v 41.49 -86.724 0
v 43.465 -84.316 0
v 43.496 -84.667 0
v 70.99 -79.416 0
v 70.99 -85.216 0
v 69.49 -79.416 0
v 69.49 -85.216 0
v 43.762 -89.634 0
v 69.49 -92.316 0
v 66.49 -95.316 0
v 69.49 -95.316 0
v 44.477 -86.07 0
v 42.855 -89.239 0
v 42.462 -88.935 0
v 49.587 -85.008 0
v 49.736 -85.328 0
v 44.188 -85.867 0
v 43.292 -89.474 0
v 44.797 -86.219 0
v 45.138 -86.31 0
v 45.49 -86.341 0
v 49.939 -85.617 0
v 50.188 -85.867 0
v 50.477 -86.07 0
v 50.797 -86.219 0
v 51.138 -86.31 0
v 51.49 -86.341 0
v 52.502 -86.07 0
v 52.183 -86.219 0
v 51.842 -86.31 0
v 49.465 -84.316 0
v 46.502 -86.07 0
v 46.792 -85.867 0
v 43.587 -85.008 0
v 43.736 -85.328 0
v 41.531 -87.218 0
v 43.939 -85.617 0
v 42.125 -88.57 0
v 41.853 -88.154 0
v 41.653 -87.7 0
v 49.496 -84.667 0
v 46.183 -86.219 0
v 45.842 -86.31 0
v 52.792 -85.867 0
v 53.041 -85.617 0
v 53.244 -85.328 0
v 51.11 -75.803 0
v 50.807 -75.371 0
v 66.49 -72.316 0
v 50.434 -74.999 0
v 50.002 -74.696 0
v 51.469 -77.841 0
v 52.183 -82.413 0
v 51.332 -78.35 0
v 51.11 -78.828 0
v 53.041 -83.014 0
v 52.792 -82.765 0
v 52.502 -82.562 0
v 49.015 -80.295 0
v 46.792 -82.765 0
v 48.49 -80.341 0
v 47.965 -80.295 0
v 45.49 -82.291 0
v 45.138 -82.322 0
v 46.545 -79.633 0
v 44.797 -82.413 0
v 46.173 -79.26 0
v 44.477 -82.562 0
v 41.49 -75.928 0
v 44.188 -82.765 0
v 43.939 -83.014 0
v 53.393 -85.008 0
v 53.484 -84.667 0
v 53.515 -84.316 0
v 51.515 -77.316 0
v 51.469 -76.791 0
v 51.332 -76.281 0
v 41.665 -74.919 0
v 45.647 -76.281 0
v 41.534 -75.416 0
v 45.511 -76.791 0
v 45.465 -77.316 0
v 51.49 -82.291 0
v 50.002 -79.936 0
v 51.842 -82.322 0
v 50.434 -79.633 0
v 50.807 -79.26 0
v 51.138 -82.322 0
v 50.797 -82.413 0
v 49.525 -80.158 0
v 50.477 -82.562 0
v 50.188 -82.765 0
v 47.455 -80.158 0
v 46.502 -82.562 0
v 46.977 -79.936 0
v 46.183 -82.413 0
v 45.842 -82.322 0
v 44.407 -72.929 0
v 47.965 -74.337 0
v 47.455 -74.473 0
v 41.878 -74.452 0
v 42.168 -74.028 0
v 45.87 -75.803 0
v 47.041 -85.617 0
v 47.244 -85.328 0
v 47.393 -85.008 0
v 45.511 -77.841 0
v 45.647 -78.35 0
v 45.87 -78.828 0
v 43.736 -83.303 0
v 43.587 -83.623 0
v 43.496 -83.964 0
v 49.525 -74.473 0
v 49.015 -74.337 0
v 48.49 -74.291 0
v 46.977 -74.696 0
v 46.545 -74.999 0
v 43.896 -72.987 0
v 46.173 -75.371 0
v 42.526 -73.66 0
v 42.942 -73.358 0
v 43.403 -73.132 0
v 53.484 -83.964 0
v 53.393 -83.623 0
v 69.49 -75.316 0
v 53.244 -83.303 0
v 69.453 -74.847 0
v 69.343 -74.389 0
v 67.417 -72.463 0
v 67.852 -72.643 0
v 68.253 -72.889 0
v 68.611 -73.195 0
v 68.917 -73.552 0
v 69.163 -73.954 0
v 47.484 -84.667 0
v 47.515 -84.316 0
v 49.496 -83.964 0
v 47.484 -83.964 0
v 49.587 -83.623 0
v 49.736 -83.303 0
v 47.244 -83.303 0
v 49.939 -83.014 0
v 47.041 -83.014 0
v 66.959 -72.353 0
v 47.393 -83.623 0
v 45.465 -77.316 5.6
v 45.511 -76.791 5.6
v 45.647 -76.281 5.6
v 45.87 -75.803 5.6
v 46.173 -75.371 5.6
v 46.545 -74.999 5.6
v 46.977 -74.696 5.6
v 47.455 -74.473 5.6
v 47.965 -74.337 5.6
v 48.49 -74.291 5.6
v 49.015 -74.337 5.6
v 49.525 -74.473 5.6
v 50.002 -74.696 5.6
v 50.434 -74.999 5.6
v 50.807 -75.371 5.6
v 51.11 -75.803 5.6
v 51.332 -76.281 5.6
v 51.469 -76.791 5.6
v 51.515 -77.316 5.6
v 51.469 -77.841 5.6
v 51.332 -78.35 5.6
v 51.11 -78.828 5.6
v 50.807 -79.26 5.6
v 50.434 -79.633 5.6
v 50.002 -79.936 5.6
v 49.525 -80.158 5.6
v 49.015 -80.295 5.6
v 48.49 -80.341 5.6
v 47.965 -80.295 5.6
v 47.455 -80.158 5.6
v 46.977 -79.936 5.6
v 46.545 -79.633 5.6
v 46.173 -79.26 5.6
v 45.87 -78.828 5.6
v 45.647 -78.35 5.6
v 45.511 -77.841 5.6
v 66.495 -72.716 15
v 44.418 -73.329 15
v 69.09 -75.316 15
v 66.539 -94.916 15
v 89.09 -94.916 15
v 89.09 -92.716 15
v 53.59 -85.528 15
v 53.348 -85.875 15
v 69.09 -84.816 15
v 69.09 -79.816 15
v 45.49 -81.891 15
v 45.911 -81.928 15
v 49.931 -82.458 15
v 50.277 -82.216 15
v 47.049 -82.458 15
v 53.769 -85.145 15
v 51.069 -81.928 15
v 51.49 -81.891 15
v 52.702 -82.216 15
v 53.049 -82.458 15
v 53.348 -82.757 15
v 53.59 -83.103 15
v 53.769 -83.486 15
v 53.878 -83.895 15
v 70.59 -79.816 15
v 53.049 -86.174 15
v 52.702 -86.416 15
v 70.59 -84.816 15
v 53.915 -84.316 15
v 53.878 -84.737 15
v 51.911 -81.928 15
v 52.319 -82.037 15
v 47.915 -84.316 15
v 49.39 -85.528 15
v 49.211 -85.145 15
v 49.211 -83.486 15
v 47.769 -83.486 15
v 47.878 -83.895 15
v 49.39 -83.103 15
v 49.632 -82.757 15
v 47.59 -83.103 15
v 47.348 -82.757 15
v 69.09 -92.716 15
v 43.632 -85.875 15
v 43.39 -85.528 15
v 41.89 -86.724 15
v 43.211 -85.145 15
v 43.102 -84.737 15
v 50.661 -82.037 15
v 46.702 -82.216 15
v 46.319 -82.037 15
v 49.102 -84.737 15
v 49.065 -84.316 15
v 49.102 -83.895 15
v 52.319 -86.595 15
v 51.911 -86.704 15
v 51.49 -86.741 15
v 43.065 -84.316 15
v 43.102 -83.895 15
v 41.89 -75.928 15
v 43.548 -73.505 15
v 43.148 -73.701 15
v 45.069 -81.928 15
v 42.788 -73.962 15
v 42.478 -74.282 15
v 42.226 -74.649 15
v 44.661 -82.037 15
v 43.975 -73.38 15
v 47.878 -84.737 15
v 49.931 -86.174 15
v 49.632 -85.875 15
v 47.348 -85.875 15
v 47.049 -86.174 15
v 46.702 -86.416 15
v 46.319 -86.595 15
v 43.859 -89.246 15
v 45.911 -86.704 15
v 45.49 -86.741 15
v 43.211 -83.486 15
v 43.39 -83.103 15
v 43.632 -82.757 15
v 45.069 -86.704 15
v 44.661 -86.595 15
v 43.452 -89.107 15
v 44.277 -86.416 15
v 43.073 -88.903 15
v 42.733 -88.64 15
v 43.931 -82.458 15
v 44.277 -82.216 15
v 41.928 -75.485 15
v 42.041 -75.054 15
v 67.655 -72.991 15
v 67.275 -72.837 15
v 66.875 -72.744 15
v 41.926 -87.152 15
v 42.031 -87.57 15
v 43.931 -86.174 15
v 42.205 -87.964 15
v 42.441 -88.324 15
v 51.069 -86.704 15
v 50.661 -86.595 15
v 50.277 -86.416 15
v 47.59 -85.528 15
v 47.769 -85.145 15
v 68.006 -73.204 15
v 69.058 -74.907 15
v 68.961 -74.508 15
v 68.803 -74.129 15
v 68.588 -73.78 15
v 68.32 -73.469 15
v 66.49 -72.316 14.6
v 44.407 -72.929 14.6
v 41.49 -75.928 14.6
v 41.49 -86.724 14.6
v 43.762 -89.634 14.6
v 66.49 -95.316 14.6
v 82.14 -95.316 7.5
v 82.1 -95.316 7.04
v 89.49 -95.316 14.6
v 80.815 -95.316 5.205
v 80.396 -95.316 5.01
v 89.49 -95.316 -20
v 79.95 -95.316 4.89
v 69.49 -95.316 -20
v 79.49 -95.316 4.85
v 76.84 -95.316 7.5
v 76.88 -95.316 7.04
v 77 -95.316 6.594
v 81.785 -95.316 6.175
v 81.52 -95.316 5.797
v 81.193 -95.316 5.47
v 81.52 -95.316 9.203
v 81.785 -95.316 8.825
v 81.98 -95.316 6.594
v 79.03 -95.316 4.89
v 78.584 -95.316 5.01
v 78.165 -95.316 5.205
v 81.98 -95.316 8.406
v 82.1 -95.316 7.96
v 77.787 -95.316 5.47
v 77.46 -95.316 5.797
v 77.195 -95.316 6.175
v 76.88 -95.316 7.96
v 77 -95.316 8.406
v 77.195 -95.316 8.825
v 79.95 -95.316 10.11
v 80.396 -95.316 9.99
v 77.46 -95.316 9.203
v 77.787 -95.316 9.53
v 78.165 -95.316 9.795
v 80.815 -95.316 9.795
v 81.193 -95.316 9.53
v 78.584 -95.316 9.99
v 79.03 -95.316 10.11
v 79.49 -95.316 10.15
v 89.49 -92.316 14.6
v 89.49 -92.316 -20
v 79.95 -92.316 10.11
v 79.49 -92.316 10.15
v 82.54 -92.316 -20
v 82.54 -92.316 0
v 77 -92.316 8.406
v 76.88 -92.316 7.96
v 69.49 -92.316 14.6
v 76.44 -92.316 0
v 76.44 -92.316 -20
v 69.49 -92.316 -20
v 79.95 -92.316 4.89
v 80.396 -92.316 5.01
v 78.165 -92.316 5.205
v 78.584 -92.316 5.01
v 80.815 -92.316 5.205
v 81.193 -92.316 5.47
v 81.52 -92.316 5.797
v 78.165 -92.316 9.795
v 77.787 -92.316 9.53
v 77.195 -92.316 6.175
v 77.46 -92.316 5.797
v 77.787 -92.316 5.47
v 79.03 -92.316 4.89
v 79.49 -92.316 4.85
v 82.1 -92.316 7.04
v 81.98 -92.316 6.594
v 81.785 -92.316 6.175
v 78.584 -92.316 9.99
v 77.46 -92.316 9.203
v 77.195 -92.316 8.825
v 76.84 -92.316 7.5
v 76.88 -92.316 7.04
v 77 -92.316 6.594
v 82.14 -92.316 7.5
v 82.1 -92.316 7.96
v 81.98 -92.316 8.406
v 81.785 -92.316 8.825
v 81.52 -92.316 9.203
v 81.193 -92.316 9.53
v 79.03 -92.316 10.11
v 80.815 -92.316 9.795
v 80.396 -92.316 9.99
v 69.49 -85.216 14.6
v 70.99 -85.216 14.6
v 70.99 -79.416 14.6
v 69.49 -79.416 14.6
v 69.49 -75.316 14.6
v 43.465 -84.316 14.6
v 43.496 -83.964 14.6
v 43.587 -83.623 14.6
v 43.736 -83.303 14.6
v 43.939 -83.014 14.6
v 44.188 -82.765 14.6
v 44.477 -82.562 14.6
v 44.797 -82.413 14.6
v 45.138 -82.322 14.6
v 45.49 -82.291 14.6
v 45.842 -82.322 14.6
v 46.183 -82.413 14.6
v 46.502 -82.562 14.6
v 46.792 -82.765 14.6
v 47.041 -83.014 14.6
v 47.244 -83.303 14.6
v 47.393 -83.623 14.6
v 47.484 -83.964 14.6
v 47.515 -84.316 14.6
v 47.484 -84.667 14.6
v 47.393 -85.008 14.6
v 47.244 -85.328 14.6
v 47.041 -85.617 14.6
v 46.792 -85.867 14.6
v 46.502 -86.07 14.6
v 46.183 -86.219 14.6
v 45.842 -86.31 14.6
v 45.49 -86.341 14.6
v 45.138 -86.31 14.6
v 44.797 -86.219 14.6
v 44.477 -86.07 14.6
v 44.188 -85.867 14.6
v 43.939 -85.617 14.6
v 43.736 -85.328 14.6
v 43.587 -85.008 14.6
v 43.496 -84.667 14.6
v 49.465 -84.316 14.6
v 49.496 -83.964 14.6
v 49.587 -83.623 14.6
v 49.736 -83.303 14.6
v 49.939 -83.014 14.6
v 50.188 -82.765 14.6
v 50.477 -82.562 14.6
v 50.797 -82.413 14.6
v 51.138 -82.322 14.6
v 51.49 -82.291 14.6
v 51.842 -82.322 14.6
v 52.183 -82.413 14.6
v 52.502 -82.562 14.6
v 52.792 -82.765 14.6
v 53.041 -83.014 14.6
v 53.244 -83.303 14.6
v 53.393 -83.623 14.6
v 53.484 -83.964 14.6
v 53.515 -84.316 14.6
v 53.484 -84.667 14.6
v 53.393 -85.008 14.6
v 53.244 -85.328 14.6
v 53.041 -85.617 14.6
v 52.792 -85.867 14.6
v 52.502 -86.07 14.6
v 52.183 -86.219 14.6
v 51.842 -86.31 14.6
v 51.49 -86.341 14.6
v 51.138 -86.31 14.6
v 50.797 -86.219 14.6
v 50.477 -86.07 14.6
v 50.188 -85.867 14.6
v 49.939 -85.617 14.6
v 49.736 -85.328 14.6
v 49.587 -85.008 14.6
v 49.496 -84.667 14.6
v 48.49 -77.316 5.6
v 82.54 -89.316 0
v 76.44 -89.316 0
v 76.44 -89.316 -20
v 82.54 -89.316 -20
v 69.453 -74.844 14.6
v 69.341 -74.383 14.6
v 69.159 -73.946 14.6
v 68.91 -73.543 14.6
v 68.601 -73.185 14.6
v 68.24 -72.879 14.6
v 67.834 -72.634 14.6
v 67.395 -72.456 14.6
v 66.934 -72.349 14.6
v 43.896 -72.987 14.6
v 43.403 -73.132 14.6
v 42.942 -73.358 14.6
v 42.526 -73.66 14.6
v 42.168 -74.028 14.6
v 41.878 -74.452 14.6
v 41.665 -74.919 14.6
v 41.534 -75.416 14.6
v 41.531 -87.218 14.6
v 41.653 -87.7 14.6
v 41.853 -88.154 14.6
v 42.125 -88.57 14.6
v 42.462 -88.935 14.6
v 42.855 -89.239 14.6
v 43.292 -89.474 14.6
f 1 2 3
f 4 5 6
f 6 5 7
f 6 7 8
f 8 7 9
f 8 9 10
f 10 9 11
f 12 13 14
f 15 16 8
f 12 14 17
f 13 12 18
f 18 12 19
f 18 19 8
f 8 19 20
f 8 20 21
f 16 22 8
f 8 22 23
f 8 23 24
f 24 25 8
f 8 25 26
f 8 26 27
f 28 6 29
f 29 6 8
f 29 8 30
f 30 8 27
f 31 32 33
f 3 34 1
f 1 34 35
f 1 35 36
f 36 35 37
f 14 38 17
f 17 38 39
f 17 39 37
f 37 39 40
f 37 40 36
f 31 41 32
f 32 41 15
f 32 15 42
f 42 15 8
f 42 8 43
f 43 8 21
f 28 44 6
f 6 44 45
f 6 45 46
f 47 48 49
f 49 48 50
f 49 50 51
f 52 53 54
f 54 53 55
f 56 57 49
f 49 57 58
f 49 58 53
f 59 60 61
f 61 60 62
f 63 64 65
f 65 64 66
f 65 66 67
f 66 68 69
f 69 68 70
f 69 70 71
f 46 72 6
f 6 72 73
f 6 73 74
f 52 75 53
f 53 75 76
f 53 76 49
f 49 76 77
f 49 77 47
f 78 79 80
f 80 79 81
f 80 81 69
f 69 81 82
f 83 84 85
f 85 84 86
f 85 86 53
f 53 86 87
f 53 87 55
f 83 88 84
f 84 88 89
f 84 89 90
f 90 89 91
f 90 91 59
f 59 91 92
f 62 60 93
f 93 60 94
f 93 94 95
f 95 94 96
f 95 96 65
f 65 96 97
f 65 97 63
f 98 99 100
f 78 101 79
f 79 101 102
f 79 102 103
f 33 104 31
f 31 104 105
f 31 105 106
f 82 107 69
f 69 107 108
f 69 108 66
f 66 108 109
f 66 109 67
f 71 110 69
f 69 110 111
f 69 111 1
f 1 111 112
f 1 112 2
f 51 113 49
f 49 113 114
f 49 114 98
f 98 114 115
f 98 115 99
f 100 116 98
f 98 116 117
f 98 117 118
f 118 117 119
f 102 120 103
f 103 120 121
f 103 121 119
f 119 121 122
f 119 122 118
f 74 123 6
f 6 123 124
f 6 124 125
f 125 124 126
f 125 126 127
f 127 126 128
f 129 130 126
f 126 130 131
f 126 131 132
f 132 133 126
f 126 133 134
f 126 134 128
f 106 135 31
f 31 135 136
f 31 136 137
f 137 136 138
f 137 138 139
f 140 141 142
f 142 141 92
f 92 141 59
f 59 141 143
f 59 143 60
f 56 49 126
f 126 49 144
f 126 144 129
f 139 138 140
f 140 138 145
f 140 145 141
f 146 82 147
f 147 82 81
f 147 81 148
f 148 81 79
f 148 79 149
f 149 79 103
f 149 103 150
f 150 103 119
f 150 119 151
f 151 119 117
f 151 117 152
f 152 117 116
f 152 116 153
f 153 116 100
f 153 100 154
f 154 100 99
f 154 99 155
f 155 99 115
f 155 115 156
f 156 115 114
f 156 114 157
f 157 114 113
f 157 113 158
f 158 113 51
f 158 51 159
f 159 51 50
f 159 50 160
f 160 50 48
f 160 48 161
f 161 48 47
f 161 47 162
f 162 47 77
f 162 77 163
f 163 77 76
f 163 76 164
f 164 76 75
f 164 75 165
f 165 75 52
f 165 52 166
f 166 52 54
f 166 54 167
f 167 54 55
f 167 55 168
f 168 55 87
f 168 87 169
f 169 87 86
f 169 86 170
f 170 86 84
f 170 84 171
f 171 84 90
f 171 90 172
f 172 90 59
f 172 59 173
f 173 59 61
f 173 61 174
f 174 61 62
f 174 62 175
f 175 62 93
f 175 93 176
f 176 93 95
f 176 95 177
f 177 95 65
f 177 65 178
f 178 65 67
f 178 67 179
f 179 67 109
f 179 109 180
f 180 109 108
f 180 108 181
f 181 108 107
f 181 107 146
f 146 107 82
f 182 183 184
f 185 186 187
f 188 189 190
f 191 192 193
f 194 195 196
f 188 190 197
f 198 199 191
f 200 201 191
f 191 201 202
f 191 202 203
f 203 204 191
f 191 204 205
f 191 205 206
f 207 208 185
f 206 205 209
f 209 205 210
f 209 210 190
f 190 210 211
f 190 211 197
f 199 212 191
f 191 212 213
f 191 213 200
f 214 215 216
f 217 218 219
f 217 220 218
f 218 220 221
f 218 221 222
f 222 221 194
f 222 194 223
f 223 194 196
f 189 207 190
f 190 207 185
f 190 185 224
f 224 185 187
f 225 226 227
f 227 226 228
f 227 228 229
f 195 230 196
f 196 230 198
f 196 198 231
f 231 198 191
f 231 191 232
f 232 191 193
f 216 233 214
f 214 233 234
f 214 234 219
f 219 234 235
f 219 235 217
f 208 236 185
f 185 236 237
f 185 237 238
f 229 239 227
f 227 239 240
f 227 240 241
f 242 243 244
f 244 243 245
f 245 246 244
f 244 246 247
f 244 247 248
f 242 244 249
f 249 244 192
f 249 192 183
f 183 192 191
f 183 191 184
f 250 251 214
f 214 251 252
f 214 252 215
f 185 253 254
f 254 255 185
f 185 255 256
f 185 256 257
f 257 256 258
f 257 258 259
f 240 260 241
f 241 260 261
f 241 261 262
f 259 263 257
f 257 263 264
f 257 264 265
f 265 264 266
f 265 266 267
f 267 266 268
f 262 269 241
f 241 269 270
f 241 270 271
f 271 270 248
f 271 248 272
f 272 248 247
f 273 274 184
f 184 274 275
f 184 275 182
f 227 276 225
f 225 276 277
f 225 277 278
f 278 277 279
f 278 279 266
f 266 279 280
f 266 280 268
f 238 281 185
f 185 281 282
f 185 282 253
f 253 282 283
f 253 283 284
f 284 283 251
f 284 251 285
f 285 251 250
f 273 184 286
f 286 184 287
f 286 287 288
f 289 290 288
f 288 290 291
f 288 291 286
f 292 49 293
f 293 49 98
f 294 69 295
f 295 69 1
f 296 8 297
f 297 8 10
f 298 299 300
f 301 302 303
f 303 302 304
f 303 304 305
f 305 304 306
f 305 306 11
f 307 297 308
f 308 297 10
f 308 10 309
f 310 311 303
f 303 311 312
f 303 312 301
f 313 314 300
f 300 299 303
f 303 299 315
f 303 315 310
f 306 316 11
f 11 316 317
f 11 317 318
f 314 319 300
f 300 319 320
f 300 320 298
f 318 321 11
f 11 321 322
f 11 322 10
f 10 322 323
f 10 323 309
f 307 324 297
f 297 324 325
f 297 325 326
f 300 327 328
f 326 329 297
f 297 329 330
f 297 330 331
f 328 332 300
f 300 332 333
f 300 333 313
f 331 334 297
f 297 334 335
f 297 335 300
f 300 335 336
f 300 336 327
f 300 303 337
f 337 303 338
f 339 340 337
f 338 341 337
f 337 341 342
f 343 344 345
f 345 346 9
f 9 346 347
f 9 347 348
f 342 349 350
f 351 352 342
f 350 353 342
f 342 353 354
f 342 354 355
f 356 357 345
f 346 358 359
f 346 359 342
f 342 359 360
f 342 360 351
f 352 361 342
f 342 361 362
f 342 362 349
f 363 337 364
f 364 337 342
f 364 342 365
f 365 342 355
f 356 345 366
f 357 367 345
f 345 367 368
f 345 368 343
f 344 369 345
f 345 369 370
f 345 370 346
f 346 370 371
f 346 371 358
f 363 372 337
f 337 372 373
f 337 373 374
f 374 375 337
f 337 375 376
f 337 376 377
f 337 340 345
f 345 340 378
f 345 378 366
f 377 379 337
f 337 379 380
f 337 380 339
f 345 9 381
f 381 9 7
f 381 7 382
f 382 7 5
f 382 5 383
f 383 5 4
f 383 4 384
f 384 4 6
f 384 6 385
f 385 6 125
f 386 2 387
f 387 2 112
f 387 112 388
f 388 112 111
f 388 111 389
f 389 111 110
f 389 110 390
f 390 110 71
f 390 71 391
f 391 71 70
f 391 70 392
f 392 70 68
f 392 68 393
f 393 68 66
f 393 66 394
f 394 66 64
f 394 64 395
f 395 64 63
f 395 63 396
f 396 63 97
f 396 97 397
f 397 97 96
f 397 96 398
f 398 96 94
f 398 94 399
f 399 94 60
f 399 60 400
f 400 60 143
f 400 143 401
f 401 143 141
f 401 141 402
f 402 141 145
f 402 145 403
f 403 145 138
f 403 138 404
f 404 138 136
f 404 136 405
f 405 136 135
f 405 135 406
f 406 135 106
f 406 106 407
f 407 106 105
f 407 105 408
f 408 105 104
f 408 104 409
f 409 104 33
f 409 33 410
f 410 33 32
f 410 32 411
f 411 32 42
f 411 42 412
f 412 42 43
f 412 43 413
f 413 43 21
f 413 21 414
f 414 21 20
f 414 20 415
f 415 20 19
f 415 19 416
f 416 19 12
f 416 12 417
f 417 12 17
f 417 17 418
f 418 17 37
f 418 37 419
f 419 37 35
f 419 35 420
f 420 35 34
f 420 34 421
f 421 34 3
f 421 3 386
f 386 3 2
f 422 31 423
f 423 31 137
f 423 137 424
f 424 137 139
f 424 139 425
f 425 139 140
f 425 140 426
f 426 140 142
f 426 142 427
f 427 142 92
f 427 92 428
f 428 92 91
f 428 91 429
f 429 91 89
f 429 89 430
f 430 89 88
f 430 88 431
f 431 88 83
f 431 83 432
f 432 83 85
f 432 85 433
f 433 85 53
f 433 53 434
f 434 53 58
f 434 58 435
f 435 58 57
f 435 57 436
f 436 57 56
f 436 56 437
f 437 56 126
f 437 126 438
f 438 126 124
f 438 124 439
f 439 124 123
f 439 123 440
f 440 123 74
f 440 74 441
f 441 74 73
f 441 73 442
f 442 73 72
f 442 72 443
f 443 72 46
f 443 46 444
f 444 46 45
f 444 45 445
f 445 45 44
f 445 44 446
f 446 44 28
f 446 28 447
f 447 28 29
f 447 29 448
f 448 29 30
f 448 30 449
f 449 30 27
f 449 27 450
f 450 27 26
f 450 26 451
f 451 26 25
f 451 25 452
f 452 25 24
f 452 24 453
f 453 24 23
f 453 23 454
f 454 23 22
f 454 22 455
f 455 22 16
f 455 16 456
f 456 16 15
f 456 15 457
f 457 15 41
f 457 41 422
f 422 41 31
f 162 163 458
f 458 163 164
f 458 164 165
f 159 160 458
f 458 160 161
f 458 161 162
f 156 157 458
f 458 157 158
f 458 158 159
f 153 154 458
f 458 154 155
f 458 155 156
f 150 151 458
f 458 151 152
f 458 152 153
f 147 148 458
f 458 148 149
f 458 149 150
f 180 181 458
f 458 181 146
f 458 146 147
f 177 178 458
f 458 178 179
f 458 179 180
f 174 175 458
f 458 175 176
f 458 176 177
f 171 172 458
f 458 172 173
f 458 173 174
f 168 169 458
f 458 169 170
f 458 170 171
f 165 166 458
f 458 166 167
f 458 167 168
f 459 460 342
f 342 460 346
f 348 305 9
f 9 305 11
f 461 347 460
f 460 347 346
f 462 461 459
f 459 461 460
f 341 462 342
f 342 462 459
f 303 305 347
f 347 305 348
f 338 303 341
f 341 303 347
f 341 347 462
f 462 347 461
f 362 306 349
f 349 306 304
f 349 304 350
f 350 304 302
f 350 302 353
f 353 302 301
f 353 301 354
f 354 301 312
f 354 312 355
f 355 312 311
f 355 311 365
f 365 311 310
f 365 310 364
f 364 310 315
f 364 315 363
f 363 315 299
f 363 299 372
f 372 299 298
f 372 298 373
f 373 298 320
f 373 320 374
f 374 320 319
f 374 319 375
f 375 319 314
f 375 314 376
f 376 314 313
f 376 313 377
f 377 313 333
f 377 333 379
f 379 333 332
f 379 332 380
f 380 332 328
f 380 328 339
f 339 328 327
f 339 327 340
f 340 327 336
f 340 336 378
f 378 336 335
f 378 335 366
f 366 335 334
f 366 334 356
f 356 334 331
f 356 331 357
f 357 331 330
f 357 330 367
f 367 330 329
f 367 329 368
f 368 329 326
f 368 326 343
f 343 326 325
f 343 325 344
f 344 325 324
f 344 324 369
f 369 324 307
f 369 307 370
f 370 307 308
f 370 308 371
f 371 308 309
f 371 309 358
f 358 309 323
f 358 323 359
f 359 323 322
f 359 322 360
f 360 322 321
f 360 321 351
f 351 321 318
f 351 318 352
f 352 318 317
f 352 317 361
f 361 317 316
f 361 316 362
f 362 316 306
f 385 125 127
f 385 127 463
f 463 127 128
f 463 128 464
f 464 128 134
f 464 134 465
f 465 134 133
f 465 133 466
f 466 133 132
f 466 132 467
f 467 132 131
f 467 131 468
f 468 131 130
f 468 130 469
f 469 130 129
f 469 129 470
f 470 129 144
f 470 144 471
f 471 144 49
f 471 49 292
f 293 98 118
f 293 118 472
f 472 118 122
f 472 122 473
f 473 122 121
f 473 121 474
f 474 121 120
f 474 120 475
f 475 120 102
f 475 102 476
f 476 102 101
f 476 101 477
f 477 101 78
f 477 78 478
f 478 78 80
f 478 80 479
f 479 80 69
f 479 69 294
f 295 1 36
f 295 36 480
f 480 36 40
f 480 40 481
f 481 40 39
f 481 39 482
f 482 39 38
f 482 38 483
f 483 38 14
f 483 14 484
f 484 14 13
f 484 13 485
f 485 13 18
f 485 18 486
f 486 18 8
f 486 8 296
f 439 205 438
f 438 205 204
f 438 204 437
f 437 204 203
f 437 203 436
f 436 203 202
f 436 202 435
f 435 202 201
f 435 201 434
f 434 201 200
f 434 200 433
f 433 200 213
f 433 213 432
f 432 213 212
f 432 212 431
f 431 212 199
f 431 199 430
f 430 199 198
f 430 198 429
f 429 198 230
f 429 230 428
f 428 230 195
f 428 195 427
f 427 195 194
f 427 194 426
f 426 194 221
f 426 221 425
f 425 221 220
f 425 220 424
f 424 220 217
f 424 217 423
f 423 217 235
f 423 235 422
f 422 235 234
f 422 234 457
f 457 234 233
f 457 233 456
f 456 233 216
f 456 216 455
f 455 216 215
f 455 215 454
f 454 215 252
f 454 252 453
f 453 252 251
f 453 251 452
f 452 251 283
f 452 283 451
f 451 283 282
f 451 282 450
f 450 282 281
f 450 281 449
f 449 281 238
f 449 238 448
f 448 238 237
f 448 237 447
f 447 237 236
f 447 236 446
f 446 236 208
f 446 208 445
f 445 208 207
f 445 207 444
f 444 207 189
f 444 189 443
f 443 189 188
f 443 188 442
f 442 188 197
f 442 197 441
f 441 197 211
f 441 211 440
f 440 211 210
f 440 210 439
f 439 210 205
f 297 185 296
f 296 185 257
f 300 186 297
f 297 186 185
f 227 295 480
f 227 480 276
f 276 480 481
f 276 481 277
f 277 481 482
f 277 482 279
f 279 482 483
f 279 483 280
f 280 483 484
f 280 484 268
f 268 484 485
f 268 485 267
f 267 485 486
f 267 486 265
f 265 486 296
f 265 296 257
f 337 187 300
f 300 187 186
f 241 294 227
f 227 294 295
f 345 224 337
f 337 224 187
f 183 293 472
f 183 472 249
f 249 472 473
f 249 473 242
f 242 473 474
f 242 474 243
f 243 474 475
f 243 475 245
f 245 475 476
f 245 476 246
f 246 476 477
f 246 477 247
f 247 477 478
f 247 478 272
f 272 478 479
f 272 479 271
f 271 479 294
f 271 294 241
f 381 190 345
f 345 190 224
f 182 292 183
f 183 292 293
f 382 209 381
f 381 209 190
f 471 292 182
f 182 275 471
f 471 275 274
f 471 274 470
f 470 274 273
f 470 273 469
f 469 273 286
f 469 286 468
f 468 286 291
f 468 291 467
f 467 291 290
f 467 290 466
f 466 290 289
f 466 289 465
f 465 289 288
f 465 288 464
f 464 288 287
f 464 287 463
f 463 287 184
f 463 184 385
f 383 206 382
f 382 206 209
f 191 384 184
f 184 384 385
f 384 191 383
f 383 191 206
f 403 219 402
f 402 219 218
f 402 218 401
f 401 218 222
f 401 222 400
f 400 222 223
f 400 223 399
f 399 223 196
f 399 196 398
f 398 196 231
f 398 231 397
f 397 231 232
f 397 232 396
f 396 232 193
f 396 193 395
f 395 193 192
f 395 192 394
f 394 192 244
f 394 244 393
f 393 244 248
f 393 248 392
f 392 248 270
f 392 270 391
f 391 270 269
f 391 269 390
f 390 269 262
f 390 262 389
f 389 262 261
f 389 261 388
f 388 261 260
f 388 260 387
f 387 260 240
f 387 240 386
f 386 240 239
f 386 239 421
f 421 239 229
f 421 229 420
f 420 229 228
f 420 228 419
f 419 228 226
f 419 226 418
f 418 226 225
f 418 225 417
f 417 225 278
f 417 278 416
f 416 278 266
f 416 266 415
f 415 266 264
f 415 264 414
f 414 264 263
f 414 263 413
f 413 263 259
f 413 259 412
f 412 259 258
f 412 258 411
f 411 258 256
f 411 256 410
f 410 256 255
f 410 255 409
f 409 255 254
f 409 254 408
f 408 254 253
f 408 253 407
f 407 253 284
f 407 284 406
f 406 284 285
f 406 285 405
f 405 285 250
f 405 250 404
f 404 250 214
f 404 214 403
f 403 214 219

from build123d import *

# Parameters (mm, degrees)
SKETCH1_R           = 3.025
SKETCH1_R_2         = 2.025
BOSS_EXTRUDE1_DEPTH = 15
BOSS_EXTRUDE2_START = 5.6
SKETCH1_2_R         = 3.025
BOSS_EXTRUDE2_DEPTH = 9.4
BOSS_EXTRUDE3_DEPTH = 20
SKETCH2_R           = 2.65
CUT_EXTRUDE1_DEPTH  = 70
FILLET1_R           = 3
CHAMFER1_SIZE       = 0.4


# Some blends are built 0.0001 mm under size
with BuildPart() as part:
    # Sketch1 → Boss-Extrude1 (new body)
    with BuildSketch(Plane.XY):
        Polygon((66.489922843, -72.31585339), (69.489922843, -72.31585339), (69.489922843, -79.41585339), (70.989922843, -79.41585339), (70.989922843, -85.21585339), (69.489922843, -85.21585339), (69.489922843, -92.31585339), (76.589922843, -92.31585339), (82.389922843, -92.31585339), (89.489922843, -92.31585339), (89.489922843, -95.31585339), (66.489922843, -95.31585339), (41.489922843, -89.06585339), (41.489922843, -73.010297834), align=None)
        with Locations((48.489922843, -77.31585339)):
            Circle(SKETCH1_R, mode=Mode.SUBTRACT)
        with Locations((45.489922843, -84.31585339)):
            Circle(SKETCH1_R_2, mode=Mode.SUBTRACT)
        with Locations((51.489922843, -84.31585339)):
            Circle(SKETCH1_R_2, mode=Mode.SUBTRACT)
    extrude(amount=BOSS_EXTRUDE1_DEPTH)

    # Sketch1<2> → Boss-Extrude2 (add)
    with BuildSketch(Plane.XY.offset(BOSS_EXTRUDE2_START)):
        with Locations((48.489922843, -77.31585339)):
            Circle(SKETCH1_2_R)
    extrude(amount=BOSS_EXTRUDE2_DEPTH)

    # Sketch3 → Boss-Extrude3 (add)
    with BuildSketch(Plane(origin=(0, 0, 0), x_dir=(-1, 0, 0), z_dir=(0, 0, -1))):
        Polygon((-76.439922843, -92.31585339), (-69.489922843, -92.31585339), (-69.489922843, -95.31585339), (-89.489922843, -95.31585339), (-89.489922843, -92.31585339), (-82.539922843, -92.31585339), (-82.539922843, -89.31585339), (-76.439922843, -89.31585339), align=None)
    extrude(amount=BOSS_EXTRUDE3_DEPTH)

    # Sketch2 → Cut-Extrude1 (cut)
    with BuildSketch(Plane.XZ.offset(95.31585339)):
        with Locations(Location((79.489922843, 7.5, 0), (0, 0, 270))):
            Circle(SKETCH2_R)
    extrude(amount=-CUT_EXTRUDE1_DEPTH, mode=Mode.SUBTRACT)

    # Fillet1
    fillet1_edges = [part.edges().sort_by_distance(p)[0] for p in [
        (69.489922843, -72.31585339, 7.5),
        (41.489922843, -73.010297834, 7.5),
        (41.489922843, -89.06585339, 7.5),
    ]]
    fillet(fillet1_edges, radius=FILLET1_R - 0.0001)  # a hair under: the kernel refuses the full size

    # Chamfer1
    # the kernel refuses this chamfer: 0.4 mm, written as the material it takes off along each edge
    with BuildSketch(Plane(origin=(90.518596038, -95.31585339, 15), x_dir=(0, 0.9996219169112966, 0.02749587661058671), z_dir=(-1, 0, 0))) as chamfer1_piece_1:
        Polygon((CHAMFER1_SIZE * 0.999621916911, CHAMFER1_SIZE * 0.0274958766106), (-CHAMFER1_SIZE * 0.0274958766106, CHAMFER1_SIZE * 0.999621916911), (0, 0), align=None)
    extrude(amount=25.05734639, mode=Mode.SUBTRACT)
    with BuildSketch(Plane(origin=(89.489922843, -91.287180195, 15), x_dir=(-0.9996219169112966, 0, 0.02749587661058671), z_dir=(0, -1, 0))) as chamfer1_piece_2:
        Polygon((CHAMFER1_SIZE * 0.999621916911, CHAMFER1_SIZE * 0.0274958766106), (-CHAMFER1_SIZE * 0.0274958766106, CHAMFER1_SIZE * 0.999621916911), (0, 0), align=None)
    extrude(amount=5.05734639, mode=Mode.SUBTRACT)
    with BuildSketch(Plane(origin=(69.489922843, -92.31585339, 15), x_dir=(0, -0.9996219169112966, 0.02749587661058671), z_dir=(1, 0, 0))) as chamfer1_piece_3:
        Polygon((CHAMFER1_SIZE * 0.999621916911, CHAMFER1_SIZE * 0.0274958766106), (-CHAMFER1_SIZE * 0.0274958766106, CHAMFER1_SIZE * 0.999621916911), (0, 0), align=None)
    extrude(amount=21.028673195, mode=Mode.SUBTRACT)
    with BuildSketch(Plane(origin=(69.489922843, -85.21585339, 15), x_dir=(-0.9996219169112966, -2.1408261351483406e-13, 0.02749587661058671), z_dir=(0, -1, 0))) as chamfer1_piece_4:
        Polygon((CHAMFER1_SIZE * 0.999621916911, CHAMFER1_SIZE * 0.0274958766106), (-CHAMFER1_SIZE * 0.0274958766106, CHAMFER1_SIZE * 0.999621916911), (0, 0), align=None)
    extrude(amount=7.1, mode=Mode.SUBTRACT)
    with BuildSketch(Plane(origin=(45.489922843, -84.31585339, 15), x_dir=(1, 0, 0), z_dir=(0, -1, 0))) as chamfer1_piece_5:
        Polygon((2.025 + CHAMFER1_SIZE, 0), (2.025, -CHAMFER1_SIZE), (2.025, 0), align=None)
    revolve(axis=Axis((45.489922843, -84.31585339, 15), (0, 0, 1)), mode=Mode.SUBTRACT)
    with BuildSketch(Plane(origin=(72.018596038, -85.21585339, 15), x_dir=(0, 0.9996219169112966, 0.02749587661058671), z_dir=(-1, 0, 0)), Plane(origin=(69.489922843, -79.41585339, 15), x_dir=(0, -0.9996219169112966, 0.02749587661058671), z_dir=(1, 0, 0))) as chamfer1_piece_6:
        Polygon((CHAMFER1_SIZE * 0.999621916911, CHAMFER1_SIZE * 0.0274958766106), (-CHAMFER1_SIZE * 0.0274958766106, CHAMFER1_SIZE * 0.999621916911), (0, 0), align=None)
    extrude(amount=2.528673195, mode=Mode.SUBTRACT)
    with BuildSketch(Plane(origin=(51.489922843, -84.31585339, 15), x_dir=(1, 0, 0), z_dir=(0, -1, 0))) as chamfer1_piece_7:
        Polygon((2.025 + CHAMFER1_SIZE, 0), (2.025, -CHAMFER1_SIZE), (2.025, 0), align=None)
    revolve(axis=Axis((51.489922843, -84.31585339, 15), (0, 0, 1)), mode=Mode.SUBTRACT)
    with BuildSketch(Plane(origin=(70.989922843, -78.387180195, 15), x_dir=(-0.9996219169112966, -2.6206664757850423e-13, 0.02749587661058671), z_dir=(0, -1, 0))) as chamfer1_piece_8:
        Polygon((CHAMFER1_SIZE * 0.999621916911, CHAMFER1_SIZE * 0.0274958766106), (-CHAMFER1_SIZE * 0.0274958766106, CHAMFER1_SIZE * 0.999621916911), (0, 0), align=None)
    extrude(amount=7.85734639, mode=Mode.SUBTRACT)
    with BuildSketch(Plane(origin=(44.406524418, -72.929281124, 15), x_dir=(-0.0007634798546782339, 0.027485274768416574, -0.9996219169112971), z_dir=(0.9996144206527183, 0.027767067240353136, 0))) as chamfer1_piece_9:
        Polygon((CHAMFER1_SIZE * 0.999621916911, -CHAMFER1_SIZE * 0.0274958766106), (-CHAMFER1_SIZE * 0.0274958766106, -CHAMFER1_SIZE * 0.999621916911), (0, 0), align=None)
    extrude(amount=23.120589807, mode=Mode.SUBTRACT)
    with BuildSketch(Plane(origin=(69.489922843, -75.31575339, 15), x_dir=(-0.9996219169112966, 2.140826135148345e-13, 0.02749587661058671), z_dir=(0, -1, 0))) as chamfer1_piece_10:
        Polygon((CHAMFER1_SIZE * 0.999621916911, CHAMFER1_SIZE * 0.0274958766106), (-CHAMFER1_SIZE * 0.0274958766106, CHAMFER1_SIZE * 0.999621916911), (0, 0), align=None)
    extrude(amount=4.1001, mode=Mode.SUBTRACT)
    with BuildSketch(Plane(origin=(41.489922843, -86.723602248, 15), x_dir=(0.9996219169112966, 0, 0.027495876610587656), z_dir=(0, 1, 0))) as chamfer1_piece_11:
        Polygon((CHAMFER1_SIZE * 0.999621916911, CHAMFER1_SIZE * 0.0274958766106), (-CHAMFER1_SIZE * 0.0274958766106, CHAMFER1_SIZE * 0.999621916911), (0, 0), align=None)
    extrude(amount=10.795577824, mode=Mode.SUBTRACT)
    with BuildSketch(Plane(origin=(67.487882428, -95.565343286, 15), x_dir=(0.24244392641809726, 0.9697757056723949, 0.027495876610587038), z_dir=(-0.9701425001453322, 0.2425356250363316, 0))) as chamfer1_piece_12:
        Polygon((CHAMFER1_SIZE * 0.999621916911, CHAMFER1_SIZE * 0.0274958766106), (-CHAMFER1_SIZE * 0.0274958766106, CHAMFER1_SIZE * 0.999621916911), (0, 0), align=None)
    extrude(amount=24.455832214, mode=Mode.SUBTRACT)
    with BuildSketch(Plane(origin=(44.489822843, -86.723602248, 15), x_dir=(-1, 0, 0), z_dir=(0, 1, 0))) as chamfer1_piece_13:
        Polygon((2.9999 - CHAMFER1_SIZE, 0), (2.9999, -CHAMFER1_SIZE), (2.9999, 0), align=None)
    revolve(axis=Axis((44.489822843, -86.723602248, 15), (0, 0, 1)), revolution_arc=75.963756532, mode=Mode.SUBTRACT)
    with BuildSketch(Plane(origin=(44.489822843, -75.928024424, 15), x_dir=(-0.02776706724035276, 0.9996144206527183, 0), z_dir=(0.9996144206527183, 0.02776706724035276, 0))) as chamfer1_piece_14:
        Polygon((2.9999 - CHAMFER1_SIZE, 0), (2.9999, -CHAMFER1_SIZE), (2.9999, 0), align=None)
    revolve(axis=Axis((44.489822843, -75.928024424, 15), (0, 0, 1)), revolution_arc=88.408859729, mode=Mode.SUBTRACT)
    with BuildSketch(Plane(origin=(66.490022843, -75.31575339, 15), x_dir=(0, 1, 0), z_dir=(-1, 0, 0))) as chamfer1_piece_15:
        Polygon((2.9999, CHAMFER1_SIZE), (2.9999 - CHAMFER1_SIZE, 0), (2.9999, 0), align=None)
    revolve(axis=Axis((66.490022843, -75.31575339, 15), (0, 0, -1)), revolution_arc=90, mode=Mode.SUBTRACT)
    with BuildSketch(Plane(origin=(65.461249648, -72.31585339, 15), x_dir=(0, 0.027495876610595927, -0.9996219169112964), z_dir=(1, 0, 0))) as chamfer1_piece_16:
        Polygon((CHAMFER1_SIZE * 0.999621916911, -CHAMFER1_SIZE * 0.0274958766106), (-CHAMFER1_SIZE * 0.0274958766106, -CHAMFER1_SIZE * 0.999621916911), (0, 0), align=None)
    extrude(amount=1.028773195, mode=Mode.SUBTRACT)
    with BuildSketch(Plane(origin=(69.489922843, -85.21585339, 15), x_dir=(-0.9996219169112966, -2.1408261351483406e-13, 0.02749587661058671), z_dir=(0, -1, 0))) as chamfer1_piece_17a_section:
        Polygon((CHAMFER1_SIZE * 0.999621916911, CHAMFER1_SIZE * 0.0274958766106), (-CHAMFER1_SIZE * 0.0274958766106, CHAMFER1_SIZE * 0.999621916911), (0, 0), align=None)
    chamfer1_piece_17a = extrude(amount=8.128673195, mode=Mode.PRIVATE)
    chamfer1_piece_17a = split(chamfer1_piece_17a, bisect_by=Plane(origin=(69.358005392, -92.31585339, 14.868082549), z_dir=(0, -1, 0)), keep=Keep.TOP, mode=Mode.PRIVATE)
    with BuildSketch(Plane(origin=(68.461249648, -92.31585339, 15), x_dir=(0, -0.9996219169112966, 0.02749587661058671), z_dir=(1, 0, 0))) as chamfer1_piece_17b_section:
        Polygon((CHAMFER1_SIZE * 0.999621916911, CHAMFER1_SIZE * 0.0274958766106), (-CHAMFER1_SIZE * 0.0274958766106, CHAMFER1_SIZE * 0.999621916911), (0, 0), align=None)
    chamfer1_piece_17b = extrude(amount=22.05734639, mode=Mode.PRIVATE)
    chamfer1_piece_17b = split(chamfer1_piece_17b, bisect_by=Plane(origin=(69.489922843, -92.44777084, 14.868082549), z_dir=(-1, 0, 0)), keep=Keep.TOP, mode=Mode.PRIVATE)
    chamfer1_piece_17 = chamfer1_piece_17a & chamfer1_piece_17b
    add(chamfer1_piece_17, mode=Mode.SUBTRACT)
    with BuildSketch(Plane(origin=(72.018596038, -85.21585339, 15), x_dir=(0, 0.9996219169112966, 0.02749587661058671), z_dir=(-1, 0, 0))) as chamfer1_piece_18a_section:
        Polygon((CHAMFER1_SIZE * 0.999621916911, CHAMFER1_SIZE * 0.0274958766106), (-CHAMFER1_SIZE * 0.0274958766106, CHAMFER1_SIZE * 0.999621916911), (0, 0), align=None)
    chamfer1_piece_18a = extrude(amount=3.55734639, mode=Mode.PRIVATE)
    chamfer1_piece_18a = split(chamfer1_piece_18a, bisect_by=Plane(origin=(69.489922843, -85.083935939, 14.868082549), z_dir=(-1, 0, 0)), keep=Keep.TOP, mode=Mode.PRIVATE)
    with BuildSketch(Plane(origin=(69.489922843, -84.187180195, 15), x_dir=(-0.9996219169112966, -2.1408261351483406e-13, 0.02749587661058671), z_dir=(0, -1, 0))) as chamfer1_piece_18b_section:
        Polygon((CHAMFER1_SIZE * 0.999621916911, CHAMFER1_SIZE * 0.0274958766106), (-CHAMFER1_SIZE * 0.0274958766106, CHAMFER1_SIZE * 0.999621916911), (0, 0), align=None)
    chamfer1_piece_18b = extrude(amount=8.128673195, mode=Mode.PRIVATE)
    chamfer1_piece_18b = split(chamfer1_piece_18b, bisect_by=Plane(origin=(69.358005392, -85.21585339, 14.868082549), z_dir=(0, 1, 0)), keep=Keep.TOP, mode=Mode.PRIVATE)
    chamfer1_piece_18 = chamfer1_piece_18a & chamfer1_piece_18b
    add(chamfer1_piece_18, mode=Mode.SUBTRACT)
    with BuildSketch(Plane(origin=(69.489922843, -75.31575339, 15), x_dir=(-0.9996219169112966, 2.140826135148345e-13, 0.02749587661058671), z_dir=(0, -1, 0))) as chamfer1_piece_19a_section:
        Polygon((CHAMFER1_SIZE * 0.999621916911, CHAMFER1_SIZE * 0.0274958766106), (-CHAMFER1_SIZE * 0.0274958766106, CHAMFER1_SIZE * 0.999621916911), (0, 0), align=None)
    chamfer1_piece_19a = extrude(amount=5.128773195, mode=Mode.PRIVATE)
    chamfer1_piece_19a = split(chamfer1_piece_19a, bisect_by=Plane(origin=(69.358005392, -79.41585339, 14.868082549), z_dir=(0, -1, 0)), keep=Keep.TOP, mode=Mode.PRIVATE)
    with BuildSketch(Plane(origin=(68.461249648, -79.41585339, 15), x_dir=(0, -0.9996219169112966, 0.02749587661058671), z_dir=(1, 0, 0))) as chamfer1_piece_19b_section:
        Polygon((CHAMFER1_SIZE * 0.999621916911, CHAMFER1_SIZE * 0.0274958766106), (-CHAMFER1_SIZE * 0.0274958766106, CHAMFER1_SIZE * 0.999621916911), (0, 0), align=None)
    chamfer1_piece_19b = extrude(amount=3.55734639, mode=Mode.PRIVATE)
    chamfer1_piece_19b = split(chamfer1_piece_19b, bisect_by=Plane(origin=(69.489922843, -79.54777084, 14.868082549), z_dir=(-1, 0, 0)), keep=Keep.TOP, mode=Mode.PRIVATE)
    chamfer1_piece_19 = chamfer1_piece_19a & chamfer1_piece_19b
    add(chamfer1_piece_19, mode=Mode.SUBTRACT)


solid = part.part
